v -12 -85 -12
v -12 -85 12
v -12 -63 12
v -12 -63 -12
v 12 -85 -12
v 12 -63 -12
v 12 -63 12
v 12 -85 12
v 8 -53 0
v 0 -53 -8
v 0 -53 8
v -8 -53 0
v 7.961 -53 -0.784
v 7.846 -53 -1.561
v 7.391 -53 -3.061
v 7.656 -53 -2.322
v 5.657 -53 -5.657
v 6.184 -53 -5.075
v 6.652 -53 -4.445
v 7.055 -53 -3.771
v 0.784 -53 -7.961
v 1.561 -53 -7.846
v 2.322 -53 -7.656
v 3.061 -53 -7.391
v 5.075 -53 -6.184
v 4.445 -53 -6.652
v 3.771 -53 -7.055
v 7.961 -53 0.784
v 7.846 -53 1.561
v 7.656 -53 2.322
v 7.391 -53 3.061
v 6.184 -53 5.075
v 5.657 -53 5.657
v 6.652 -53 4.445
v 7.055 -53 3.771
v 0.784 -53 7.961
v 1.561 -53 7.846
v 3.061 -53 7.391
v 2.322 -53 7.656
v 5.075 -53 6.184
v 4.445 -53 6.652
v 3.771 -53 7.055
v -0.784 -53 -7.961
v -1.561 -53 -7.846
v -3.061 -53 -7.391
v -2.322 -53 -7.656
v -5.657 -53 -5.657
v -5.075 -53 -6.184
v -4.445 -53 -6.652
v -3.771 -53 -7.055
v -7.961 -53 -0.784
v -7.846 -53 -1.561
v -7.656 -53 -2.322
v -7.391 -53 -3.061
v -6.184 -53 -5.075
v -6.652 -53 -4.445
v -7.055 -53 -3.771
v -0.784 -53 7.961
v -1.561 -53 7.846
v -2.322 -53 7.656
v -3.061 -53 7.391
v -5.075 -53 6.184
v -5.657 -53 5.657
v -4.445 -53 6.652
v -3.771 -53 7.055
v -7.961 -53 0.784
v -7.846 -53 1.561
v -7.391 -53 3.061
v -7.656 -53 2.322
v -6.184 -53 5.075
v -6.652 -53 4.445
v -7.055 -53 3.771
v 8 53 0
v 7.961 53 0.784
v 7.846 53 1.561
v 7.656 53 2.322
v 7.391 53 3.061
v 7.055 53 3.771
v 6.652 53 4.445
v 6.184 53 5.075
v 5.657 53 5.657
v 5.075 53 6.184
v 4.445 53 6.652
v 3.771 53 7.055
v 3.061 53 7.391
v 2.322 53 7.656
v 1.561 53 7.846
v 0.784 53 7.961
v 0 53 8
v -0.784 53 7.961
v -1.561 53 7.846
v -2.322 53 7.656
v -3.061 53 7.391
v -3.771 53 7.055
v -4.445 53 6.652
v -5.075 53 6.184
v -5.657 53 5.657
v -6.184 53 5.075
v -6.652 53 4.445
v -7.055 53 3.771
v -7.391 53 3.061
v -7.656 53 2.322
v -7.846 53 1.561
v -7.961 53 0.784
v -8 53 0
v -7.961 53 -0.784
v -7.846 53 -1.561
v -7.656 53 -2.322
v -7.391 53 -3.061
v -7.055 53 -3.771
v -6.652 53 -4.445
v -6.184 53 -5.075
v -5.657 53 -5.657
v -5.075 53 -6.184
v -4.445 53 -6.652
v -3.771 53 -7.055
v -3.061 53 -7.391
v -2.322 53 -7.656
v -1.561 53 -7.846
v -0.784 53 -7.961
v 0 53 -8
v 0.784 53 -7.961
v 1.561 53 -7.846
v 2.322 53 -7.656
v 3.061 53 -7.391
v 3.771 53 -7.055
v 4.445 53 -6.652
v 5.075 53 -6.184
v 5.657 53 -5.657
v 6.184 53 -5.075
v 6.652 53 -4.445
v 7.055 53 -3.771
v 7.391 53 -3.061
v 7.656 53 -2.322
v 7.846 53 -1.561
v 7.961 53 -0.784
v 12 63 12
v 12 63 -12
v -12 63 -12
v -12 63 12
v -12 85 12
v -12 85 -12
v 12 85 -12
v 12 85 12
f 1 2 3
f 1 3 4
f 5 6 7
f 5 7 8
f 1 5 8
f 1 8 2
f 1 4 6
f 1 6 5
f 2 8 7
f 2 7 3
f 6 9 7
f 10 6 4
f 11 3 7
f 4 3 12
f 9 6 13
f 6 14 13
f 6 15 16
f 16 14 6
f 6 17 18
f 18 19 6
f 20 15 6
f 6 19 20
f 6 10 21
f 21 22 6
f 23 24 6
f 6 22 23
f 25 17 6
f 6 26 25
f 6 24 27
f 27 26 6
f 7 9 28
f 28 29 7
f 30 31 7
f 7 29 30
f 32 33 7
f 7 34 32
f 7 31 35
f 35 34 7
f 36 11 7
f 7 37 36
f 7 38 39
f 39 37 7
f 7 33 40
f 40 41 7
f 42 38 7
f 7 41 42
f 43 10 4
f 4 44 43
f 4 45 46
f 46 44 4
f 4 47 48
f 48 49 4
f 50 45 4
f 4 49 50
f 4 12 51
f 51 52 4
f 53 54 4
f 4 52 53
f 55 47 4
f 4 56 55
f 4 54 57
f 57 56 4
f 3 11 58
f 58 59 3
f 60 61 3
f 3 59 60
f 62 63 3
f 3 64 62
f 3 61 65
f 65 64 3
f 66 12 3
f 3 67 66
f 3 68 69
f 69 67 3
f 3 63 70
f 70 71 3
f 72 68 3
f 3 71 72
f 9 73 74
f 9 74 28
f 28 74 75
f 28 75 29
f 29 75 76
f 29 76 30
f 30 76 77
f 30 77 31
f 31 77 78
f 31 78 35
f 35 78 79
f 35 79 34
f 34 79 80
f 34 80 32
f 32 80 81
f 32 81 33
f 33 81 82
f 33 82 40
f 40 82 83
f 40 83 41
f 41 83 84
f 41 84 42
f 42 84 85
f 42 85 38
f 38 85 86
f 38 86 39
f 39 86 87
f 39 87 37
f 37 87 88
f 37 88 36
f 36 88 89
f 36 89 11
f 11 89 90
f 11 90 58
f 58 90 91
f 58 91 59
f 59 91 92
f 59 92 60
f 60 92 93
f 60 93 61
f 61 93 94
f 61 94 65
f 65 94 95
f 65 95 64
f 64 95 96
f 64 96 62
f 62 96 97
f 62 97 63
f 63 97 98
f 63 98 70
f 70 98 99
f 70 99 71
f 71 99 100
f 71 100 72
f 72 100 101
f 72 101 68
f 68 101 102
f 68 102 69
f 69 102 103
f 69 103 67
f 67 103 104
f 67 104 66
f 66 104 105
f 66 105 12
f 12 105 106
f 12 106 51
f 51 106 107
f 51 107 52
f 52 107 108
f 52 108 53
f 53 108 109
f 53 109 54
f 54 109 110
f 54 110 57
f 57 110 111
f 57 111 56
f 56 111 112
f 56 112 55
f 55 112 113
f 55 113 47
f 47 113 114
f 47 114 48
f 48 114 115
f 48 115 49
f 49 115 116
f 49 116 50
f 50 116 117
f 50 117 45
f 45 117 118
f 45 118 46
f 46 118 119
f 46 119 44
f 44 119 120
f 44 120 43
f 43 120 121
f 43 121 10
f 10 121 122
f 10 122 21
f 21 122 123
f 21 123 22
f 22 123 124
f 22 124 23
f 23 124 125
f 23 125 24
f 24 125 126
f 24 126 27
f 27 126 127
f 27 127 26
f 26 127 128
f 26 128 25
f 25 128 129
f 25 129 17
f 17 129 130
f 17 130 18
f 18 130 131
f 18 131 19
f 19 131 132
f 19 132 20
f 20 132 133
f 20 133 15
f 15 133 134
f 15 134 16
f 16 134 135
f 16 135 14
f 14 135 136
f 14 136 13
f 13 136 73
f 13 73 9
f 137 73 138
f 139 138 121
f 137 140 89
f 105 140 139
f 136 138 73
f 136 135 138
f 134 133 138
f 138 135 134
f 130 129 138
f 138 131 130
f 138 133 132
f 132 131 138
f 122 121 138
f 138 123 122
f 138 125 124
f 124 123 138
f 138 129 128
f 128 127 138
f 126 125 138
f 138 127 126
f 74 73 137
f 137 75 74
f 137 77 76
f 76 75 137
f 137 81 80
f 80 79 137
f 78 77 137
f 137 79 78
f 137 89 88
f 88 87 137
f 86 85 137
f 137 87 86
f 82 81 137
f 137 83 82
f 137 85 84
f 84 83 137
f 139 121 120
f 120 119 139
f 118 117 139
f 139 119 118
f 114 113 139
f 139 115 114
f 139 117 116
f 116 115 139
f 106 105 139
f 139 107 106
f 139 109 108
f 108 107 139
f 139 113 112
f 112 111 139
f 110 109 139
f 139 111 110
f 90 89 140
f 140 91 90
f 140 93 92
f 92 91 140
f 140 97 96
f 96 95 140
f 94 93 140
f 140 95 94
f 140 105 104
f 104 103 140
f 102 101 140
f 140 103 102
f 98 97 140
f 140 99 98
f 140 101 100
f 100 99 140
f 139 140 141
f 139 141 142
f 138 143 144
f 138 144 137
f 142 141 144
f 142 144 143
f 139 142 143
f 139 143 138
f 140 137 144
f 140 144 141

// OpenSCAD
// Millimeters. Same vertices as STL and simulation.
polyhedron(points=[[-12.0, -84.99999999999999, -12.0], [-12.0, -84.99999999999999, 12.0], [-12.0, -63.0, 12.0], [-12.0, -63.0, -12.0], [12.0, -84.99999999999999, -12.0], [12.0, -63.0, -12.0], [12.0, -63.0, 12.0], [12.0, -84.99999999999999, 12.0], [8.0, -53.0, 0.0], [-1.469576158976824e-15, -53.0, -8.0], [4.898587196589413e-16, -53.0, 8.0], [-8.0, -53.0, 9.797174393178826e-16], [7.961477813377575, -53.0, -0.784137122636484], [7.8462822432258434, -53.0, -1.5607225761290298], [7.391036260090292, -53.0, -3.061467458920723], [7.655522685857671, -53.0, -2.3222774180357], [5.656854249492379, -53.0, -5.6568542494923815], [6.184083626901893, -53.0, -5.0751462733091675], [6.651756898420363, -53.0, -4.444561864156817], [7.055370114786839, -53.0, -3.771173894607984], [0.7841371226364807, -53.0, -7.961477813377575], [1.5607225761290264, -53.0, -7.8462822432258434], [2.3222774180356964, -53.0, -7.6555226858576715], [3.06146745892072, -53.0, -7.391036260090293], [5.075146273309165, -53.0, -6.184083626901895], [4.444561864156816, -53.0, -6.6517568984203645], [3.7711738946079807, -53.0, -7.05537011478684], [7.961477813377575, -53.0, 0.7841371226364848], [7.8462822432258434, -53.0, 1.560722576129026], [7.655522685857671, -53.0, 2.3222774180356986], [7.391036260090294, -53.0, 3.0614674589207183], [6.184083626901896, -53.0, 5.075146273309165], [5.656854249492381, -53.0, 5.65685424949238], [6.651756898420363, -53.0, 4.444561864156817], [7.05537011478684, -53.0, 3.771173894607981], [0.7841371226364862, -53.0, 7.961477813377575], [1.5607225761290267, -53.0, 7.8462822432258434], [3.0614674589207187, -53.0, 7.391036260090294], [2.3222774180356986, -53.0, 7.655522685857671], [5.075146273309165, -53.0, 6.184083626901896], [4.444561864156818, -53.0, 6.651756898420363], [3.7711738946079825, -53.0, 7.0553701147868395], [-0.7841371226364836, -53.0, -7.961477813377575], [-1.5607225761290293, -53.0, -7.8462822432258434], [-3.0614674589207227, -53.0, -7.391036260090292], [-2.3222774180356995, -53.0, -7.655522685857671], [-5.6568542494923815, -53.0, -5.65685424949238], [-5.075146273309167, -53.0, -6.184083626901893], [-4.444561864156817, -53.0, -6.651756898420363], [-3.7711738946079834, -53.0, -7.0553701147868395], [-7.961477813377575, -53.0, -0.7841371226364847], [-7.8462822432258434, -53.0, -1.5607225761290269], [-7.6555226858576715, -53.0, -2.322277418035697], [-7.391036260090295, -53.0, -3.0614674589207174], [-6.184083626901897, -53.0, -5.075146273309163], [-6.6517568984203645, -53.0, -4.444561864156816], [-7.05537011478684, -53.0, -3.771173894607981], [-0.7841371226364852, -53.0, 7.961477813377575], [-1.5607225761290255, -53.0, 7.8462822432258434], [-2.3222774180356973, -53.0, 7.6555226858576715], [-3.061467458920718, -53.0, 7.391036260090294], [-5.075146273309164, -53.0, 6.184083626901897], [-5.65685424949238, -53.0, 5.656854249492381], [-4.444561864156816, -53.0, 6.651756898420364], [-3.7711738946079816, -53.0, 7.05537011478684], [-7.961477813377575, -53.0, 0.7841371226364866], [-7.8462822432258434, -53.0, 1.5607225761290289], [-7.391036260090294, -53.0, 3.061467458920719], [-7.655522685857671, -53.0, 2.322277418035699], [-6.184083626901896, -53.0, 5.075146273309165], [-6.651756898420364, -53.0, 4.444561864156817], [-7.0553701147868395, -53.0, 3.771173894607983], [8.0, 53.0, 0.0], [7.961477813377575, 53.0, 0.7841371226364848], [7.8462822432258434, 53.0, 1.560722576129026], [7.655522685857671, 53.0, 2.3222774180356986], [7.391036260090294, 53.0, 3.0614674589207183], [7.05537011478684, 53.0, 3.771173894607981], [6.651756898420363, 53.0, 4.444561864156817], [6.184083626901896, 53.0, 5.075146273309165], [5.656854249492381, 53.0, 5.65685424949238], [5.075146273309165, 53.0, 6.184083626901896], [4.444561864156818, 53.0, 6.651756898420363], [3.7711738946079825, 53.0, 7.0553701147868395], [3.0614674589207187, 53.0, 7.391036260090294], [2.3222774180356986, 53.0, 7.655522685857671], [1.5607225761290267, 53.0, 7.8462822432258434], [0.7841371226364862, 53.0, 7.961477813377575], [4.898587196589413e-16, 53.0, 8.0], [-0.7841371226364852, 53.0, 7.961477813377575], [-1.5607225761290255, 53.0, 7.8462822432258434], [-2.3222774180356973, 53.0, 7.6555226858576715], [-3.061467458920718, 53.0, 7.391036260090294], [-3.7711738946079816, 53.0, 7.05537011478684], [-4.444561864156816, 53.0, 6.651756898420364], [-5.075146273309164, 53.0, 6.184083626901897], [-5.65685424949238, 53.0, 5.656854249492381], [-6.184083626901896, 53.0, 5.075146273309165], [-6.651756898420364, 53.0, 4.444561864156817], [-7.0553701147868395, 53.0, 3.771173894607983], [-7.391036260090294, 53.0, 3.061467458920719], [-7.655522685857671, 53.0, 2.322277418035699], [-7.8462822432258434, 53.0, 1.5607225761290289], [-7.961477813377575, 53.0, 0.7841371226364866], [-8.0, 53.0, 9.797174393178826e-16], [-7.961477813377575, 53.0, -0.7841371226364847], [-7.8462822432258434, 53.0, -1.5607225761290269], [-7.6555226858576715, 53.0, -2.322277418035697], [-7.391036260090295, 53.0, -3.0614674589207174], [-7.05537011478684, 53.0, -3.771173894607981], [-6.6517568984203645, 53.0, -4.444561864156816], [-6.184083626901897, 53.0, -5.075146273309163], [-5.6568542494923815, 53.0, -5.65685424949238], [-5.075146273309167, 53.0, -6.184083626901893], [-4.444561864156817, 53.0, -6.651756898420363], [-3.7711738946079834, 53.0, -7.0553701147868395], [-3.0614674589207227, 53.0, -7.391036260090292], [-2.3222774180356995, 53.0, -7.655522685857671], [-1.5607225761290293, 53.0, -7.8462822432258434], [-0.7841371226364836, 53.0, -7.961477813377575], [-1.469576158976824e-15, 53.0, -8.0], [0.7841371226364807, 53.0, -7.961477813377575], [1.5607225761290264, 53.0, -7.8462822432258434], [2.3222774180356964, 53.0, -7.6555226858576715], [3.06146745892072, 53.0, -7.391036260090293], [3.7711738946079807, 53.0, -7.05537011478684], [4.444561864156816, 53.0, -6.6517568984203645], [5.075146273309165, 53.0, -6.184083626901895], [5.656854249492379, 53.0, -5.6568542494923815], [6.184083626901893, 53.0, -5.0751462733091675], [6.651756898420363, 53.0, -4.444561864156817], [7.055370114786839, 53.0, -3.771173894607984], [7.391036260090292, 53.0, -3.061467458920723], [7.655522685857671, 53.0, -2.3222774180357], [7.8462822432258434, 53.0, -1.5607225761290298], [7.961477813377575, 53.0, -0.784137122636484], [12.0, 63.0, 11.999999999999998], [11.999999999999993, 63.0, -12.0], [-12.0, 63.0, -11.999999999999995], [-11.999999999999998, 63.0, 12.0], [-12.0, 84.99999999999999, 12.0], [-12.0, 84.99999999999999, -12.0], [12.0, 84.99999999999999, -12.0], [12.0, 84.99999999999999, 12.0]], faces=[[2, 1, 0], [3, 2, 0], [6, 5, 4], [7, 6, 4], [7, 4, 0], [1, 7, 0], [5, 3, 0], [4, 5, 0], [6, 7, 1], [2, 6, 1], [6, 8, 5], [3, 5, 9], [6, 2, 10], [11, 2, 3], [12, 5, 8], [12, 13, 5], [15, 14, 5], [5, 13, 15], [17, 16, 5], [5, 18, 17], [5, 14, 19], [19, 18, 5], [20, 9, 5], [5, 21, 20], [5, 23, 22], [22, 21, 5], [5, 16, 24], [24, 25, 5], [26, 23, 5], [5, 25, 26], [27, 8, 6], [6, 28, 27], [6, 30, 29], [29, 28, 6], [6, 32, 31], [31, 33, 6], [34, 30, 6], [6, 33, 34], [6, 10, 35], [35, 36, 6], [38, 37, 6], [6, 36, 38], [39, 32, 6], [6, 40, 39], [6, 37, 41], [41, 40, 6], [3, 9, 42], [42, 43, 3], [45, 44, 3], [3, 43, 45], [47, 46, 3], [3, 48, 47], [3, 44, 49], [49, 48, 3], [50, 11, 3], [3, 51, 50], [3, 53, 52], [52, 51, 3], [3, 46, 54], [54, 55, 3], [56, 53, 3], [3, 55, 56], [57, 10, 2], [2, 58, 57], [2, 60, 59], [59, 58, 2], [2, 62, 61], [61, 63, 2], [64, 60, 2], [2, 63, 64], [2, 11, 65], [65, 66, 2], [68, 67, 2], [2, 66, 68], [69, 62, 2], [2, 70, 69], [2, 67, 71], [71, 70, 2], [73, 72, 8], [27, 73, 8], [74, 73, 27], [28, 74, 27], [75, 74, 28], [29, 75, 28], [76, 75, 29], [30, 76, 29], [77, 76, 30], [34, 77, 30], [78, 77, 34], [33, 78, 34], [79, 78, 33], [31, 79, 33], [80, 79, 31], [32, 80, 31], [81, 80, 32], [39, 81, 32], [82, 81, 39], [40, 82, 39], [83, 82, 40], [41, 83, 40], [84, 83, 41], [37, 84, 41], [85, 84, 37], [38, 85, 37], [86, 85, 38], [36, 86, 38], [87, 86, 36], [35, 87, 36], [88, 87, 35], [10, 88, 35], [89, 88, 10], [57, 89, 10], [90, 89, 57], [58, 90, 57], [91, 90, 58], [59, 91, 58], [92, 91, 59], [60, 92, 59], [93, 92, 60], [64, 93, 60], [94, 93, 64], [63, 94, 64], [95, 94, 63], [61, 95, 63], [96, 95, 61], [62, 96, 61], [97, 96, 62], [69, 97, 62], [98, 97, 69], [70, 98, 69], [99, 98, 70], [71, 99, 70], [100, 99, 71], [67, 100, 71], [101, 100, 67], [68, 101, 67], [102, 101, 68], [66, 102, 68], [103, 102, 66], [65, 103, 66], [104, 103, 65], [11, 104, 65], [105, 104, 11], [50, 105, 11], [106, 105, 50], [51, 106, 50], [107, 106, 51], [52, 107, 51], [108, 107, 52], [53, 108, 52], [109, 108, 53], [56, 109, 53], [110, 109, 56], [55, 110, 56], [111, 110, 55], [54, 111, 55], [112, 111, 54], [46, 112, 54], [113, 112, 46], [47, 113, 46], [114, 113, 47], [48, 114, 47], [115, 114, 48], [49, 115, 48], [116, 115, 49], [44, 116, 49], [117, 116, 44], [45, 117, 44], [118, 117, 45], [43, 118, 45], [119, 118, 43], [42, 119, 43], [120, 119, 42], [9, 120, 42], [121, 120, 9], [20, 121, 9], [122, 121, 20], [21, 122, 20], [123, 122, 21], [22, 123, 21], [124, 123, 22], [23, 124, 22], [125, 124, 23], [26, 125, 23], [126, 125, 26], [25, 126, 26], [127, 126, 25], [24, 127, 25], [128, 127, 24], [16, 128, 24], [129, 128, 16], [17, 129, 16], [130, 129, 17], [18, 130, 17], [131, 130, 18], [19, 131, 18], [132, 131, 19], [14, 132, 19], [133, 132, 14], [15, 133, 14], [134, 133, 15], [13, 134, 15], [135, 134, 13], [12, 135, 13], [72, 135, 12], [8, 72, 12], [137, 72, 136], [120, 137, 138], [88, 139, 136], [138, 139, 104], [72, 137, 135], [137, 134, 135], [137, 132, 133], [133, 134, 137], [137, 128, 129], [129, 130, 137], [131, 132, 137], [137, 130, 131], [137, 120, 121], [121, 122, 137], [123, 124, 137], [137, 122, 123], [127, 128, 137], [137, 126, 127], [137, 124, 125], [125, 126, 137], [136, 72, 73], [73, 74, 136], [75, 76, 136], [136, 74, 75], [79, 80, 136], [136, 78, 79], [136, 76, 77], [77, 78, 136], [87, 88, 136], [136, 86, 87], [136, 84, 85], [85, 86, 136], [136, 80, 81], [81, 82, 136], [83, 84, 136], [136, 82, 83], [119, 120, 138], [138, 118, 119], [138, 116, 117], [117, 118, 138], [138, 112, 113], [113, 114, 138], [115, 116, 138], [138, 114, 115], [138, 104, 105], [105, 106, 138], [107, 108, 138], [138, 106, 107], [111, 112, 138], [138, 110, 111], [138, 108, 109], [109, 110, 138], [139, 88, 89], [89, 90, 139], [91, 92, 139], [139, 90, 91], [95, 96, 139], [139, 94, 95], [139, 92, 93], [93, 94, 139], [103, 104, 139], [139, 102, 103], [139, 100, 101], [101, 102, 139], [139, 96, 97], [97, 98, 139], [99, 100, 139], [139, 98, 99], [140, 139, 138], [141, 140, 138], [143, 142, 137], [136, 143, 137], [143, 140, 141], [142, 143, 141], [142, 141, 138], [137, 142, 138], [143, 136, 139], [140, 143, 139]], convexity=10);
